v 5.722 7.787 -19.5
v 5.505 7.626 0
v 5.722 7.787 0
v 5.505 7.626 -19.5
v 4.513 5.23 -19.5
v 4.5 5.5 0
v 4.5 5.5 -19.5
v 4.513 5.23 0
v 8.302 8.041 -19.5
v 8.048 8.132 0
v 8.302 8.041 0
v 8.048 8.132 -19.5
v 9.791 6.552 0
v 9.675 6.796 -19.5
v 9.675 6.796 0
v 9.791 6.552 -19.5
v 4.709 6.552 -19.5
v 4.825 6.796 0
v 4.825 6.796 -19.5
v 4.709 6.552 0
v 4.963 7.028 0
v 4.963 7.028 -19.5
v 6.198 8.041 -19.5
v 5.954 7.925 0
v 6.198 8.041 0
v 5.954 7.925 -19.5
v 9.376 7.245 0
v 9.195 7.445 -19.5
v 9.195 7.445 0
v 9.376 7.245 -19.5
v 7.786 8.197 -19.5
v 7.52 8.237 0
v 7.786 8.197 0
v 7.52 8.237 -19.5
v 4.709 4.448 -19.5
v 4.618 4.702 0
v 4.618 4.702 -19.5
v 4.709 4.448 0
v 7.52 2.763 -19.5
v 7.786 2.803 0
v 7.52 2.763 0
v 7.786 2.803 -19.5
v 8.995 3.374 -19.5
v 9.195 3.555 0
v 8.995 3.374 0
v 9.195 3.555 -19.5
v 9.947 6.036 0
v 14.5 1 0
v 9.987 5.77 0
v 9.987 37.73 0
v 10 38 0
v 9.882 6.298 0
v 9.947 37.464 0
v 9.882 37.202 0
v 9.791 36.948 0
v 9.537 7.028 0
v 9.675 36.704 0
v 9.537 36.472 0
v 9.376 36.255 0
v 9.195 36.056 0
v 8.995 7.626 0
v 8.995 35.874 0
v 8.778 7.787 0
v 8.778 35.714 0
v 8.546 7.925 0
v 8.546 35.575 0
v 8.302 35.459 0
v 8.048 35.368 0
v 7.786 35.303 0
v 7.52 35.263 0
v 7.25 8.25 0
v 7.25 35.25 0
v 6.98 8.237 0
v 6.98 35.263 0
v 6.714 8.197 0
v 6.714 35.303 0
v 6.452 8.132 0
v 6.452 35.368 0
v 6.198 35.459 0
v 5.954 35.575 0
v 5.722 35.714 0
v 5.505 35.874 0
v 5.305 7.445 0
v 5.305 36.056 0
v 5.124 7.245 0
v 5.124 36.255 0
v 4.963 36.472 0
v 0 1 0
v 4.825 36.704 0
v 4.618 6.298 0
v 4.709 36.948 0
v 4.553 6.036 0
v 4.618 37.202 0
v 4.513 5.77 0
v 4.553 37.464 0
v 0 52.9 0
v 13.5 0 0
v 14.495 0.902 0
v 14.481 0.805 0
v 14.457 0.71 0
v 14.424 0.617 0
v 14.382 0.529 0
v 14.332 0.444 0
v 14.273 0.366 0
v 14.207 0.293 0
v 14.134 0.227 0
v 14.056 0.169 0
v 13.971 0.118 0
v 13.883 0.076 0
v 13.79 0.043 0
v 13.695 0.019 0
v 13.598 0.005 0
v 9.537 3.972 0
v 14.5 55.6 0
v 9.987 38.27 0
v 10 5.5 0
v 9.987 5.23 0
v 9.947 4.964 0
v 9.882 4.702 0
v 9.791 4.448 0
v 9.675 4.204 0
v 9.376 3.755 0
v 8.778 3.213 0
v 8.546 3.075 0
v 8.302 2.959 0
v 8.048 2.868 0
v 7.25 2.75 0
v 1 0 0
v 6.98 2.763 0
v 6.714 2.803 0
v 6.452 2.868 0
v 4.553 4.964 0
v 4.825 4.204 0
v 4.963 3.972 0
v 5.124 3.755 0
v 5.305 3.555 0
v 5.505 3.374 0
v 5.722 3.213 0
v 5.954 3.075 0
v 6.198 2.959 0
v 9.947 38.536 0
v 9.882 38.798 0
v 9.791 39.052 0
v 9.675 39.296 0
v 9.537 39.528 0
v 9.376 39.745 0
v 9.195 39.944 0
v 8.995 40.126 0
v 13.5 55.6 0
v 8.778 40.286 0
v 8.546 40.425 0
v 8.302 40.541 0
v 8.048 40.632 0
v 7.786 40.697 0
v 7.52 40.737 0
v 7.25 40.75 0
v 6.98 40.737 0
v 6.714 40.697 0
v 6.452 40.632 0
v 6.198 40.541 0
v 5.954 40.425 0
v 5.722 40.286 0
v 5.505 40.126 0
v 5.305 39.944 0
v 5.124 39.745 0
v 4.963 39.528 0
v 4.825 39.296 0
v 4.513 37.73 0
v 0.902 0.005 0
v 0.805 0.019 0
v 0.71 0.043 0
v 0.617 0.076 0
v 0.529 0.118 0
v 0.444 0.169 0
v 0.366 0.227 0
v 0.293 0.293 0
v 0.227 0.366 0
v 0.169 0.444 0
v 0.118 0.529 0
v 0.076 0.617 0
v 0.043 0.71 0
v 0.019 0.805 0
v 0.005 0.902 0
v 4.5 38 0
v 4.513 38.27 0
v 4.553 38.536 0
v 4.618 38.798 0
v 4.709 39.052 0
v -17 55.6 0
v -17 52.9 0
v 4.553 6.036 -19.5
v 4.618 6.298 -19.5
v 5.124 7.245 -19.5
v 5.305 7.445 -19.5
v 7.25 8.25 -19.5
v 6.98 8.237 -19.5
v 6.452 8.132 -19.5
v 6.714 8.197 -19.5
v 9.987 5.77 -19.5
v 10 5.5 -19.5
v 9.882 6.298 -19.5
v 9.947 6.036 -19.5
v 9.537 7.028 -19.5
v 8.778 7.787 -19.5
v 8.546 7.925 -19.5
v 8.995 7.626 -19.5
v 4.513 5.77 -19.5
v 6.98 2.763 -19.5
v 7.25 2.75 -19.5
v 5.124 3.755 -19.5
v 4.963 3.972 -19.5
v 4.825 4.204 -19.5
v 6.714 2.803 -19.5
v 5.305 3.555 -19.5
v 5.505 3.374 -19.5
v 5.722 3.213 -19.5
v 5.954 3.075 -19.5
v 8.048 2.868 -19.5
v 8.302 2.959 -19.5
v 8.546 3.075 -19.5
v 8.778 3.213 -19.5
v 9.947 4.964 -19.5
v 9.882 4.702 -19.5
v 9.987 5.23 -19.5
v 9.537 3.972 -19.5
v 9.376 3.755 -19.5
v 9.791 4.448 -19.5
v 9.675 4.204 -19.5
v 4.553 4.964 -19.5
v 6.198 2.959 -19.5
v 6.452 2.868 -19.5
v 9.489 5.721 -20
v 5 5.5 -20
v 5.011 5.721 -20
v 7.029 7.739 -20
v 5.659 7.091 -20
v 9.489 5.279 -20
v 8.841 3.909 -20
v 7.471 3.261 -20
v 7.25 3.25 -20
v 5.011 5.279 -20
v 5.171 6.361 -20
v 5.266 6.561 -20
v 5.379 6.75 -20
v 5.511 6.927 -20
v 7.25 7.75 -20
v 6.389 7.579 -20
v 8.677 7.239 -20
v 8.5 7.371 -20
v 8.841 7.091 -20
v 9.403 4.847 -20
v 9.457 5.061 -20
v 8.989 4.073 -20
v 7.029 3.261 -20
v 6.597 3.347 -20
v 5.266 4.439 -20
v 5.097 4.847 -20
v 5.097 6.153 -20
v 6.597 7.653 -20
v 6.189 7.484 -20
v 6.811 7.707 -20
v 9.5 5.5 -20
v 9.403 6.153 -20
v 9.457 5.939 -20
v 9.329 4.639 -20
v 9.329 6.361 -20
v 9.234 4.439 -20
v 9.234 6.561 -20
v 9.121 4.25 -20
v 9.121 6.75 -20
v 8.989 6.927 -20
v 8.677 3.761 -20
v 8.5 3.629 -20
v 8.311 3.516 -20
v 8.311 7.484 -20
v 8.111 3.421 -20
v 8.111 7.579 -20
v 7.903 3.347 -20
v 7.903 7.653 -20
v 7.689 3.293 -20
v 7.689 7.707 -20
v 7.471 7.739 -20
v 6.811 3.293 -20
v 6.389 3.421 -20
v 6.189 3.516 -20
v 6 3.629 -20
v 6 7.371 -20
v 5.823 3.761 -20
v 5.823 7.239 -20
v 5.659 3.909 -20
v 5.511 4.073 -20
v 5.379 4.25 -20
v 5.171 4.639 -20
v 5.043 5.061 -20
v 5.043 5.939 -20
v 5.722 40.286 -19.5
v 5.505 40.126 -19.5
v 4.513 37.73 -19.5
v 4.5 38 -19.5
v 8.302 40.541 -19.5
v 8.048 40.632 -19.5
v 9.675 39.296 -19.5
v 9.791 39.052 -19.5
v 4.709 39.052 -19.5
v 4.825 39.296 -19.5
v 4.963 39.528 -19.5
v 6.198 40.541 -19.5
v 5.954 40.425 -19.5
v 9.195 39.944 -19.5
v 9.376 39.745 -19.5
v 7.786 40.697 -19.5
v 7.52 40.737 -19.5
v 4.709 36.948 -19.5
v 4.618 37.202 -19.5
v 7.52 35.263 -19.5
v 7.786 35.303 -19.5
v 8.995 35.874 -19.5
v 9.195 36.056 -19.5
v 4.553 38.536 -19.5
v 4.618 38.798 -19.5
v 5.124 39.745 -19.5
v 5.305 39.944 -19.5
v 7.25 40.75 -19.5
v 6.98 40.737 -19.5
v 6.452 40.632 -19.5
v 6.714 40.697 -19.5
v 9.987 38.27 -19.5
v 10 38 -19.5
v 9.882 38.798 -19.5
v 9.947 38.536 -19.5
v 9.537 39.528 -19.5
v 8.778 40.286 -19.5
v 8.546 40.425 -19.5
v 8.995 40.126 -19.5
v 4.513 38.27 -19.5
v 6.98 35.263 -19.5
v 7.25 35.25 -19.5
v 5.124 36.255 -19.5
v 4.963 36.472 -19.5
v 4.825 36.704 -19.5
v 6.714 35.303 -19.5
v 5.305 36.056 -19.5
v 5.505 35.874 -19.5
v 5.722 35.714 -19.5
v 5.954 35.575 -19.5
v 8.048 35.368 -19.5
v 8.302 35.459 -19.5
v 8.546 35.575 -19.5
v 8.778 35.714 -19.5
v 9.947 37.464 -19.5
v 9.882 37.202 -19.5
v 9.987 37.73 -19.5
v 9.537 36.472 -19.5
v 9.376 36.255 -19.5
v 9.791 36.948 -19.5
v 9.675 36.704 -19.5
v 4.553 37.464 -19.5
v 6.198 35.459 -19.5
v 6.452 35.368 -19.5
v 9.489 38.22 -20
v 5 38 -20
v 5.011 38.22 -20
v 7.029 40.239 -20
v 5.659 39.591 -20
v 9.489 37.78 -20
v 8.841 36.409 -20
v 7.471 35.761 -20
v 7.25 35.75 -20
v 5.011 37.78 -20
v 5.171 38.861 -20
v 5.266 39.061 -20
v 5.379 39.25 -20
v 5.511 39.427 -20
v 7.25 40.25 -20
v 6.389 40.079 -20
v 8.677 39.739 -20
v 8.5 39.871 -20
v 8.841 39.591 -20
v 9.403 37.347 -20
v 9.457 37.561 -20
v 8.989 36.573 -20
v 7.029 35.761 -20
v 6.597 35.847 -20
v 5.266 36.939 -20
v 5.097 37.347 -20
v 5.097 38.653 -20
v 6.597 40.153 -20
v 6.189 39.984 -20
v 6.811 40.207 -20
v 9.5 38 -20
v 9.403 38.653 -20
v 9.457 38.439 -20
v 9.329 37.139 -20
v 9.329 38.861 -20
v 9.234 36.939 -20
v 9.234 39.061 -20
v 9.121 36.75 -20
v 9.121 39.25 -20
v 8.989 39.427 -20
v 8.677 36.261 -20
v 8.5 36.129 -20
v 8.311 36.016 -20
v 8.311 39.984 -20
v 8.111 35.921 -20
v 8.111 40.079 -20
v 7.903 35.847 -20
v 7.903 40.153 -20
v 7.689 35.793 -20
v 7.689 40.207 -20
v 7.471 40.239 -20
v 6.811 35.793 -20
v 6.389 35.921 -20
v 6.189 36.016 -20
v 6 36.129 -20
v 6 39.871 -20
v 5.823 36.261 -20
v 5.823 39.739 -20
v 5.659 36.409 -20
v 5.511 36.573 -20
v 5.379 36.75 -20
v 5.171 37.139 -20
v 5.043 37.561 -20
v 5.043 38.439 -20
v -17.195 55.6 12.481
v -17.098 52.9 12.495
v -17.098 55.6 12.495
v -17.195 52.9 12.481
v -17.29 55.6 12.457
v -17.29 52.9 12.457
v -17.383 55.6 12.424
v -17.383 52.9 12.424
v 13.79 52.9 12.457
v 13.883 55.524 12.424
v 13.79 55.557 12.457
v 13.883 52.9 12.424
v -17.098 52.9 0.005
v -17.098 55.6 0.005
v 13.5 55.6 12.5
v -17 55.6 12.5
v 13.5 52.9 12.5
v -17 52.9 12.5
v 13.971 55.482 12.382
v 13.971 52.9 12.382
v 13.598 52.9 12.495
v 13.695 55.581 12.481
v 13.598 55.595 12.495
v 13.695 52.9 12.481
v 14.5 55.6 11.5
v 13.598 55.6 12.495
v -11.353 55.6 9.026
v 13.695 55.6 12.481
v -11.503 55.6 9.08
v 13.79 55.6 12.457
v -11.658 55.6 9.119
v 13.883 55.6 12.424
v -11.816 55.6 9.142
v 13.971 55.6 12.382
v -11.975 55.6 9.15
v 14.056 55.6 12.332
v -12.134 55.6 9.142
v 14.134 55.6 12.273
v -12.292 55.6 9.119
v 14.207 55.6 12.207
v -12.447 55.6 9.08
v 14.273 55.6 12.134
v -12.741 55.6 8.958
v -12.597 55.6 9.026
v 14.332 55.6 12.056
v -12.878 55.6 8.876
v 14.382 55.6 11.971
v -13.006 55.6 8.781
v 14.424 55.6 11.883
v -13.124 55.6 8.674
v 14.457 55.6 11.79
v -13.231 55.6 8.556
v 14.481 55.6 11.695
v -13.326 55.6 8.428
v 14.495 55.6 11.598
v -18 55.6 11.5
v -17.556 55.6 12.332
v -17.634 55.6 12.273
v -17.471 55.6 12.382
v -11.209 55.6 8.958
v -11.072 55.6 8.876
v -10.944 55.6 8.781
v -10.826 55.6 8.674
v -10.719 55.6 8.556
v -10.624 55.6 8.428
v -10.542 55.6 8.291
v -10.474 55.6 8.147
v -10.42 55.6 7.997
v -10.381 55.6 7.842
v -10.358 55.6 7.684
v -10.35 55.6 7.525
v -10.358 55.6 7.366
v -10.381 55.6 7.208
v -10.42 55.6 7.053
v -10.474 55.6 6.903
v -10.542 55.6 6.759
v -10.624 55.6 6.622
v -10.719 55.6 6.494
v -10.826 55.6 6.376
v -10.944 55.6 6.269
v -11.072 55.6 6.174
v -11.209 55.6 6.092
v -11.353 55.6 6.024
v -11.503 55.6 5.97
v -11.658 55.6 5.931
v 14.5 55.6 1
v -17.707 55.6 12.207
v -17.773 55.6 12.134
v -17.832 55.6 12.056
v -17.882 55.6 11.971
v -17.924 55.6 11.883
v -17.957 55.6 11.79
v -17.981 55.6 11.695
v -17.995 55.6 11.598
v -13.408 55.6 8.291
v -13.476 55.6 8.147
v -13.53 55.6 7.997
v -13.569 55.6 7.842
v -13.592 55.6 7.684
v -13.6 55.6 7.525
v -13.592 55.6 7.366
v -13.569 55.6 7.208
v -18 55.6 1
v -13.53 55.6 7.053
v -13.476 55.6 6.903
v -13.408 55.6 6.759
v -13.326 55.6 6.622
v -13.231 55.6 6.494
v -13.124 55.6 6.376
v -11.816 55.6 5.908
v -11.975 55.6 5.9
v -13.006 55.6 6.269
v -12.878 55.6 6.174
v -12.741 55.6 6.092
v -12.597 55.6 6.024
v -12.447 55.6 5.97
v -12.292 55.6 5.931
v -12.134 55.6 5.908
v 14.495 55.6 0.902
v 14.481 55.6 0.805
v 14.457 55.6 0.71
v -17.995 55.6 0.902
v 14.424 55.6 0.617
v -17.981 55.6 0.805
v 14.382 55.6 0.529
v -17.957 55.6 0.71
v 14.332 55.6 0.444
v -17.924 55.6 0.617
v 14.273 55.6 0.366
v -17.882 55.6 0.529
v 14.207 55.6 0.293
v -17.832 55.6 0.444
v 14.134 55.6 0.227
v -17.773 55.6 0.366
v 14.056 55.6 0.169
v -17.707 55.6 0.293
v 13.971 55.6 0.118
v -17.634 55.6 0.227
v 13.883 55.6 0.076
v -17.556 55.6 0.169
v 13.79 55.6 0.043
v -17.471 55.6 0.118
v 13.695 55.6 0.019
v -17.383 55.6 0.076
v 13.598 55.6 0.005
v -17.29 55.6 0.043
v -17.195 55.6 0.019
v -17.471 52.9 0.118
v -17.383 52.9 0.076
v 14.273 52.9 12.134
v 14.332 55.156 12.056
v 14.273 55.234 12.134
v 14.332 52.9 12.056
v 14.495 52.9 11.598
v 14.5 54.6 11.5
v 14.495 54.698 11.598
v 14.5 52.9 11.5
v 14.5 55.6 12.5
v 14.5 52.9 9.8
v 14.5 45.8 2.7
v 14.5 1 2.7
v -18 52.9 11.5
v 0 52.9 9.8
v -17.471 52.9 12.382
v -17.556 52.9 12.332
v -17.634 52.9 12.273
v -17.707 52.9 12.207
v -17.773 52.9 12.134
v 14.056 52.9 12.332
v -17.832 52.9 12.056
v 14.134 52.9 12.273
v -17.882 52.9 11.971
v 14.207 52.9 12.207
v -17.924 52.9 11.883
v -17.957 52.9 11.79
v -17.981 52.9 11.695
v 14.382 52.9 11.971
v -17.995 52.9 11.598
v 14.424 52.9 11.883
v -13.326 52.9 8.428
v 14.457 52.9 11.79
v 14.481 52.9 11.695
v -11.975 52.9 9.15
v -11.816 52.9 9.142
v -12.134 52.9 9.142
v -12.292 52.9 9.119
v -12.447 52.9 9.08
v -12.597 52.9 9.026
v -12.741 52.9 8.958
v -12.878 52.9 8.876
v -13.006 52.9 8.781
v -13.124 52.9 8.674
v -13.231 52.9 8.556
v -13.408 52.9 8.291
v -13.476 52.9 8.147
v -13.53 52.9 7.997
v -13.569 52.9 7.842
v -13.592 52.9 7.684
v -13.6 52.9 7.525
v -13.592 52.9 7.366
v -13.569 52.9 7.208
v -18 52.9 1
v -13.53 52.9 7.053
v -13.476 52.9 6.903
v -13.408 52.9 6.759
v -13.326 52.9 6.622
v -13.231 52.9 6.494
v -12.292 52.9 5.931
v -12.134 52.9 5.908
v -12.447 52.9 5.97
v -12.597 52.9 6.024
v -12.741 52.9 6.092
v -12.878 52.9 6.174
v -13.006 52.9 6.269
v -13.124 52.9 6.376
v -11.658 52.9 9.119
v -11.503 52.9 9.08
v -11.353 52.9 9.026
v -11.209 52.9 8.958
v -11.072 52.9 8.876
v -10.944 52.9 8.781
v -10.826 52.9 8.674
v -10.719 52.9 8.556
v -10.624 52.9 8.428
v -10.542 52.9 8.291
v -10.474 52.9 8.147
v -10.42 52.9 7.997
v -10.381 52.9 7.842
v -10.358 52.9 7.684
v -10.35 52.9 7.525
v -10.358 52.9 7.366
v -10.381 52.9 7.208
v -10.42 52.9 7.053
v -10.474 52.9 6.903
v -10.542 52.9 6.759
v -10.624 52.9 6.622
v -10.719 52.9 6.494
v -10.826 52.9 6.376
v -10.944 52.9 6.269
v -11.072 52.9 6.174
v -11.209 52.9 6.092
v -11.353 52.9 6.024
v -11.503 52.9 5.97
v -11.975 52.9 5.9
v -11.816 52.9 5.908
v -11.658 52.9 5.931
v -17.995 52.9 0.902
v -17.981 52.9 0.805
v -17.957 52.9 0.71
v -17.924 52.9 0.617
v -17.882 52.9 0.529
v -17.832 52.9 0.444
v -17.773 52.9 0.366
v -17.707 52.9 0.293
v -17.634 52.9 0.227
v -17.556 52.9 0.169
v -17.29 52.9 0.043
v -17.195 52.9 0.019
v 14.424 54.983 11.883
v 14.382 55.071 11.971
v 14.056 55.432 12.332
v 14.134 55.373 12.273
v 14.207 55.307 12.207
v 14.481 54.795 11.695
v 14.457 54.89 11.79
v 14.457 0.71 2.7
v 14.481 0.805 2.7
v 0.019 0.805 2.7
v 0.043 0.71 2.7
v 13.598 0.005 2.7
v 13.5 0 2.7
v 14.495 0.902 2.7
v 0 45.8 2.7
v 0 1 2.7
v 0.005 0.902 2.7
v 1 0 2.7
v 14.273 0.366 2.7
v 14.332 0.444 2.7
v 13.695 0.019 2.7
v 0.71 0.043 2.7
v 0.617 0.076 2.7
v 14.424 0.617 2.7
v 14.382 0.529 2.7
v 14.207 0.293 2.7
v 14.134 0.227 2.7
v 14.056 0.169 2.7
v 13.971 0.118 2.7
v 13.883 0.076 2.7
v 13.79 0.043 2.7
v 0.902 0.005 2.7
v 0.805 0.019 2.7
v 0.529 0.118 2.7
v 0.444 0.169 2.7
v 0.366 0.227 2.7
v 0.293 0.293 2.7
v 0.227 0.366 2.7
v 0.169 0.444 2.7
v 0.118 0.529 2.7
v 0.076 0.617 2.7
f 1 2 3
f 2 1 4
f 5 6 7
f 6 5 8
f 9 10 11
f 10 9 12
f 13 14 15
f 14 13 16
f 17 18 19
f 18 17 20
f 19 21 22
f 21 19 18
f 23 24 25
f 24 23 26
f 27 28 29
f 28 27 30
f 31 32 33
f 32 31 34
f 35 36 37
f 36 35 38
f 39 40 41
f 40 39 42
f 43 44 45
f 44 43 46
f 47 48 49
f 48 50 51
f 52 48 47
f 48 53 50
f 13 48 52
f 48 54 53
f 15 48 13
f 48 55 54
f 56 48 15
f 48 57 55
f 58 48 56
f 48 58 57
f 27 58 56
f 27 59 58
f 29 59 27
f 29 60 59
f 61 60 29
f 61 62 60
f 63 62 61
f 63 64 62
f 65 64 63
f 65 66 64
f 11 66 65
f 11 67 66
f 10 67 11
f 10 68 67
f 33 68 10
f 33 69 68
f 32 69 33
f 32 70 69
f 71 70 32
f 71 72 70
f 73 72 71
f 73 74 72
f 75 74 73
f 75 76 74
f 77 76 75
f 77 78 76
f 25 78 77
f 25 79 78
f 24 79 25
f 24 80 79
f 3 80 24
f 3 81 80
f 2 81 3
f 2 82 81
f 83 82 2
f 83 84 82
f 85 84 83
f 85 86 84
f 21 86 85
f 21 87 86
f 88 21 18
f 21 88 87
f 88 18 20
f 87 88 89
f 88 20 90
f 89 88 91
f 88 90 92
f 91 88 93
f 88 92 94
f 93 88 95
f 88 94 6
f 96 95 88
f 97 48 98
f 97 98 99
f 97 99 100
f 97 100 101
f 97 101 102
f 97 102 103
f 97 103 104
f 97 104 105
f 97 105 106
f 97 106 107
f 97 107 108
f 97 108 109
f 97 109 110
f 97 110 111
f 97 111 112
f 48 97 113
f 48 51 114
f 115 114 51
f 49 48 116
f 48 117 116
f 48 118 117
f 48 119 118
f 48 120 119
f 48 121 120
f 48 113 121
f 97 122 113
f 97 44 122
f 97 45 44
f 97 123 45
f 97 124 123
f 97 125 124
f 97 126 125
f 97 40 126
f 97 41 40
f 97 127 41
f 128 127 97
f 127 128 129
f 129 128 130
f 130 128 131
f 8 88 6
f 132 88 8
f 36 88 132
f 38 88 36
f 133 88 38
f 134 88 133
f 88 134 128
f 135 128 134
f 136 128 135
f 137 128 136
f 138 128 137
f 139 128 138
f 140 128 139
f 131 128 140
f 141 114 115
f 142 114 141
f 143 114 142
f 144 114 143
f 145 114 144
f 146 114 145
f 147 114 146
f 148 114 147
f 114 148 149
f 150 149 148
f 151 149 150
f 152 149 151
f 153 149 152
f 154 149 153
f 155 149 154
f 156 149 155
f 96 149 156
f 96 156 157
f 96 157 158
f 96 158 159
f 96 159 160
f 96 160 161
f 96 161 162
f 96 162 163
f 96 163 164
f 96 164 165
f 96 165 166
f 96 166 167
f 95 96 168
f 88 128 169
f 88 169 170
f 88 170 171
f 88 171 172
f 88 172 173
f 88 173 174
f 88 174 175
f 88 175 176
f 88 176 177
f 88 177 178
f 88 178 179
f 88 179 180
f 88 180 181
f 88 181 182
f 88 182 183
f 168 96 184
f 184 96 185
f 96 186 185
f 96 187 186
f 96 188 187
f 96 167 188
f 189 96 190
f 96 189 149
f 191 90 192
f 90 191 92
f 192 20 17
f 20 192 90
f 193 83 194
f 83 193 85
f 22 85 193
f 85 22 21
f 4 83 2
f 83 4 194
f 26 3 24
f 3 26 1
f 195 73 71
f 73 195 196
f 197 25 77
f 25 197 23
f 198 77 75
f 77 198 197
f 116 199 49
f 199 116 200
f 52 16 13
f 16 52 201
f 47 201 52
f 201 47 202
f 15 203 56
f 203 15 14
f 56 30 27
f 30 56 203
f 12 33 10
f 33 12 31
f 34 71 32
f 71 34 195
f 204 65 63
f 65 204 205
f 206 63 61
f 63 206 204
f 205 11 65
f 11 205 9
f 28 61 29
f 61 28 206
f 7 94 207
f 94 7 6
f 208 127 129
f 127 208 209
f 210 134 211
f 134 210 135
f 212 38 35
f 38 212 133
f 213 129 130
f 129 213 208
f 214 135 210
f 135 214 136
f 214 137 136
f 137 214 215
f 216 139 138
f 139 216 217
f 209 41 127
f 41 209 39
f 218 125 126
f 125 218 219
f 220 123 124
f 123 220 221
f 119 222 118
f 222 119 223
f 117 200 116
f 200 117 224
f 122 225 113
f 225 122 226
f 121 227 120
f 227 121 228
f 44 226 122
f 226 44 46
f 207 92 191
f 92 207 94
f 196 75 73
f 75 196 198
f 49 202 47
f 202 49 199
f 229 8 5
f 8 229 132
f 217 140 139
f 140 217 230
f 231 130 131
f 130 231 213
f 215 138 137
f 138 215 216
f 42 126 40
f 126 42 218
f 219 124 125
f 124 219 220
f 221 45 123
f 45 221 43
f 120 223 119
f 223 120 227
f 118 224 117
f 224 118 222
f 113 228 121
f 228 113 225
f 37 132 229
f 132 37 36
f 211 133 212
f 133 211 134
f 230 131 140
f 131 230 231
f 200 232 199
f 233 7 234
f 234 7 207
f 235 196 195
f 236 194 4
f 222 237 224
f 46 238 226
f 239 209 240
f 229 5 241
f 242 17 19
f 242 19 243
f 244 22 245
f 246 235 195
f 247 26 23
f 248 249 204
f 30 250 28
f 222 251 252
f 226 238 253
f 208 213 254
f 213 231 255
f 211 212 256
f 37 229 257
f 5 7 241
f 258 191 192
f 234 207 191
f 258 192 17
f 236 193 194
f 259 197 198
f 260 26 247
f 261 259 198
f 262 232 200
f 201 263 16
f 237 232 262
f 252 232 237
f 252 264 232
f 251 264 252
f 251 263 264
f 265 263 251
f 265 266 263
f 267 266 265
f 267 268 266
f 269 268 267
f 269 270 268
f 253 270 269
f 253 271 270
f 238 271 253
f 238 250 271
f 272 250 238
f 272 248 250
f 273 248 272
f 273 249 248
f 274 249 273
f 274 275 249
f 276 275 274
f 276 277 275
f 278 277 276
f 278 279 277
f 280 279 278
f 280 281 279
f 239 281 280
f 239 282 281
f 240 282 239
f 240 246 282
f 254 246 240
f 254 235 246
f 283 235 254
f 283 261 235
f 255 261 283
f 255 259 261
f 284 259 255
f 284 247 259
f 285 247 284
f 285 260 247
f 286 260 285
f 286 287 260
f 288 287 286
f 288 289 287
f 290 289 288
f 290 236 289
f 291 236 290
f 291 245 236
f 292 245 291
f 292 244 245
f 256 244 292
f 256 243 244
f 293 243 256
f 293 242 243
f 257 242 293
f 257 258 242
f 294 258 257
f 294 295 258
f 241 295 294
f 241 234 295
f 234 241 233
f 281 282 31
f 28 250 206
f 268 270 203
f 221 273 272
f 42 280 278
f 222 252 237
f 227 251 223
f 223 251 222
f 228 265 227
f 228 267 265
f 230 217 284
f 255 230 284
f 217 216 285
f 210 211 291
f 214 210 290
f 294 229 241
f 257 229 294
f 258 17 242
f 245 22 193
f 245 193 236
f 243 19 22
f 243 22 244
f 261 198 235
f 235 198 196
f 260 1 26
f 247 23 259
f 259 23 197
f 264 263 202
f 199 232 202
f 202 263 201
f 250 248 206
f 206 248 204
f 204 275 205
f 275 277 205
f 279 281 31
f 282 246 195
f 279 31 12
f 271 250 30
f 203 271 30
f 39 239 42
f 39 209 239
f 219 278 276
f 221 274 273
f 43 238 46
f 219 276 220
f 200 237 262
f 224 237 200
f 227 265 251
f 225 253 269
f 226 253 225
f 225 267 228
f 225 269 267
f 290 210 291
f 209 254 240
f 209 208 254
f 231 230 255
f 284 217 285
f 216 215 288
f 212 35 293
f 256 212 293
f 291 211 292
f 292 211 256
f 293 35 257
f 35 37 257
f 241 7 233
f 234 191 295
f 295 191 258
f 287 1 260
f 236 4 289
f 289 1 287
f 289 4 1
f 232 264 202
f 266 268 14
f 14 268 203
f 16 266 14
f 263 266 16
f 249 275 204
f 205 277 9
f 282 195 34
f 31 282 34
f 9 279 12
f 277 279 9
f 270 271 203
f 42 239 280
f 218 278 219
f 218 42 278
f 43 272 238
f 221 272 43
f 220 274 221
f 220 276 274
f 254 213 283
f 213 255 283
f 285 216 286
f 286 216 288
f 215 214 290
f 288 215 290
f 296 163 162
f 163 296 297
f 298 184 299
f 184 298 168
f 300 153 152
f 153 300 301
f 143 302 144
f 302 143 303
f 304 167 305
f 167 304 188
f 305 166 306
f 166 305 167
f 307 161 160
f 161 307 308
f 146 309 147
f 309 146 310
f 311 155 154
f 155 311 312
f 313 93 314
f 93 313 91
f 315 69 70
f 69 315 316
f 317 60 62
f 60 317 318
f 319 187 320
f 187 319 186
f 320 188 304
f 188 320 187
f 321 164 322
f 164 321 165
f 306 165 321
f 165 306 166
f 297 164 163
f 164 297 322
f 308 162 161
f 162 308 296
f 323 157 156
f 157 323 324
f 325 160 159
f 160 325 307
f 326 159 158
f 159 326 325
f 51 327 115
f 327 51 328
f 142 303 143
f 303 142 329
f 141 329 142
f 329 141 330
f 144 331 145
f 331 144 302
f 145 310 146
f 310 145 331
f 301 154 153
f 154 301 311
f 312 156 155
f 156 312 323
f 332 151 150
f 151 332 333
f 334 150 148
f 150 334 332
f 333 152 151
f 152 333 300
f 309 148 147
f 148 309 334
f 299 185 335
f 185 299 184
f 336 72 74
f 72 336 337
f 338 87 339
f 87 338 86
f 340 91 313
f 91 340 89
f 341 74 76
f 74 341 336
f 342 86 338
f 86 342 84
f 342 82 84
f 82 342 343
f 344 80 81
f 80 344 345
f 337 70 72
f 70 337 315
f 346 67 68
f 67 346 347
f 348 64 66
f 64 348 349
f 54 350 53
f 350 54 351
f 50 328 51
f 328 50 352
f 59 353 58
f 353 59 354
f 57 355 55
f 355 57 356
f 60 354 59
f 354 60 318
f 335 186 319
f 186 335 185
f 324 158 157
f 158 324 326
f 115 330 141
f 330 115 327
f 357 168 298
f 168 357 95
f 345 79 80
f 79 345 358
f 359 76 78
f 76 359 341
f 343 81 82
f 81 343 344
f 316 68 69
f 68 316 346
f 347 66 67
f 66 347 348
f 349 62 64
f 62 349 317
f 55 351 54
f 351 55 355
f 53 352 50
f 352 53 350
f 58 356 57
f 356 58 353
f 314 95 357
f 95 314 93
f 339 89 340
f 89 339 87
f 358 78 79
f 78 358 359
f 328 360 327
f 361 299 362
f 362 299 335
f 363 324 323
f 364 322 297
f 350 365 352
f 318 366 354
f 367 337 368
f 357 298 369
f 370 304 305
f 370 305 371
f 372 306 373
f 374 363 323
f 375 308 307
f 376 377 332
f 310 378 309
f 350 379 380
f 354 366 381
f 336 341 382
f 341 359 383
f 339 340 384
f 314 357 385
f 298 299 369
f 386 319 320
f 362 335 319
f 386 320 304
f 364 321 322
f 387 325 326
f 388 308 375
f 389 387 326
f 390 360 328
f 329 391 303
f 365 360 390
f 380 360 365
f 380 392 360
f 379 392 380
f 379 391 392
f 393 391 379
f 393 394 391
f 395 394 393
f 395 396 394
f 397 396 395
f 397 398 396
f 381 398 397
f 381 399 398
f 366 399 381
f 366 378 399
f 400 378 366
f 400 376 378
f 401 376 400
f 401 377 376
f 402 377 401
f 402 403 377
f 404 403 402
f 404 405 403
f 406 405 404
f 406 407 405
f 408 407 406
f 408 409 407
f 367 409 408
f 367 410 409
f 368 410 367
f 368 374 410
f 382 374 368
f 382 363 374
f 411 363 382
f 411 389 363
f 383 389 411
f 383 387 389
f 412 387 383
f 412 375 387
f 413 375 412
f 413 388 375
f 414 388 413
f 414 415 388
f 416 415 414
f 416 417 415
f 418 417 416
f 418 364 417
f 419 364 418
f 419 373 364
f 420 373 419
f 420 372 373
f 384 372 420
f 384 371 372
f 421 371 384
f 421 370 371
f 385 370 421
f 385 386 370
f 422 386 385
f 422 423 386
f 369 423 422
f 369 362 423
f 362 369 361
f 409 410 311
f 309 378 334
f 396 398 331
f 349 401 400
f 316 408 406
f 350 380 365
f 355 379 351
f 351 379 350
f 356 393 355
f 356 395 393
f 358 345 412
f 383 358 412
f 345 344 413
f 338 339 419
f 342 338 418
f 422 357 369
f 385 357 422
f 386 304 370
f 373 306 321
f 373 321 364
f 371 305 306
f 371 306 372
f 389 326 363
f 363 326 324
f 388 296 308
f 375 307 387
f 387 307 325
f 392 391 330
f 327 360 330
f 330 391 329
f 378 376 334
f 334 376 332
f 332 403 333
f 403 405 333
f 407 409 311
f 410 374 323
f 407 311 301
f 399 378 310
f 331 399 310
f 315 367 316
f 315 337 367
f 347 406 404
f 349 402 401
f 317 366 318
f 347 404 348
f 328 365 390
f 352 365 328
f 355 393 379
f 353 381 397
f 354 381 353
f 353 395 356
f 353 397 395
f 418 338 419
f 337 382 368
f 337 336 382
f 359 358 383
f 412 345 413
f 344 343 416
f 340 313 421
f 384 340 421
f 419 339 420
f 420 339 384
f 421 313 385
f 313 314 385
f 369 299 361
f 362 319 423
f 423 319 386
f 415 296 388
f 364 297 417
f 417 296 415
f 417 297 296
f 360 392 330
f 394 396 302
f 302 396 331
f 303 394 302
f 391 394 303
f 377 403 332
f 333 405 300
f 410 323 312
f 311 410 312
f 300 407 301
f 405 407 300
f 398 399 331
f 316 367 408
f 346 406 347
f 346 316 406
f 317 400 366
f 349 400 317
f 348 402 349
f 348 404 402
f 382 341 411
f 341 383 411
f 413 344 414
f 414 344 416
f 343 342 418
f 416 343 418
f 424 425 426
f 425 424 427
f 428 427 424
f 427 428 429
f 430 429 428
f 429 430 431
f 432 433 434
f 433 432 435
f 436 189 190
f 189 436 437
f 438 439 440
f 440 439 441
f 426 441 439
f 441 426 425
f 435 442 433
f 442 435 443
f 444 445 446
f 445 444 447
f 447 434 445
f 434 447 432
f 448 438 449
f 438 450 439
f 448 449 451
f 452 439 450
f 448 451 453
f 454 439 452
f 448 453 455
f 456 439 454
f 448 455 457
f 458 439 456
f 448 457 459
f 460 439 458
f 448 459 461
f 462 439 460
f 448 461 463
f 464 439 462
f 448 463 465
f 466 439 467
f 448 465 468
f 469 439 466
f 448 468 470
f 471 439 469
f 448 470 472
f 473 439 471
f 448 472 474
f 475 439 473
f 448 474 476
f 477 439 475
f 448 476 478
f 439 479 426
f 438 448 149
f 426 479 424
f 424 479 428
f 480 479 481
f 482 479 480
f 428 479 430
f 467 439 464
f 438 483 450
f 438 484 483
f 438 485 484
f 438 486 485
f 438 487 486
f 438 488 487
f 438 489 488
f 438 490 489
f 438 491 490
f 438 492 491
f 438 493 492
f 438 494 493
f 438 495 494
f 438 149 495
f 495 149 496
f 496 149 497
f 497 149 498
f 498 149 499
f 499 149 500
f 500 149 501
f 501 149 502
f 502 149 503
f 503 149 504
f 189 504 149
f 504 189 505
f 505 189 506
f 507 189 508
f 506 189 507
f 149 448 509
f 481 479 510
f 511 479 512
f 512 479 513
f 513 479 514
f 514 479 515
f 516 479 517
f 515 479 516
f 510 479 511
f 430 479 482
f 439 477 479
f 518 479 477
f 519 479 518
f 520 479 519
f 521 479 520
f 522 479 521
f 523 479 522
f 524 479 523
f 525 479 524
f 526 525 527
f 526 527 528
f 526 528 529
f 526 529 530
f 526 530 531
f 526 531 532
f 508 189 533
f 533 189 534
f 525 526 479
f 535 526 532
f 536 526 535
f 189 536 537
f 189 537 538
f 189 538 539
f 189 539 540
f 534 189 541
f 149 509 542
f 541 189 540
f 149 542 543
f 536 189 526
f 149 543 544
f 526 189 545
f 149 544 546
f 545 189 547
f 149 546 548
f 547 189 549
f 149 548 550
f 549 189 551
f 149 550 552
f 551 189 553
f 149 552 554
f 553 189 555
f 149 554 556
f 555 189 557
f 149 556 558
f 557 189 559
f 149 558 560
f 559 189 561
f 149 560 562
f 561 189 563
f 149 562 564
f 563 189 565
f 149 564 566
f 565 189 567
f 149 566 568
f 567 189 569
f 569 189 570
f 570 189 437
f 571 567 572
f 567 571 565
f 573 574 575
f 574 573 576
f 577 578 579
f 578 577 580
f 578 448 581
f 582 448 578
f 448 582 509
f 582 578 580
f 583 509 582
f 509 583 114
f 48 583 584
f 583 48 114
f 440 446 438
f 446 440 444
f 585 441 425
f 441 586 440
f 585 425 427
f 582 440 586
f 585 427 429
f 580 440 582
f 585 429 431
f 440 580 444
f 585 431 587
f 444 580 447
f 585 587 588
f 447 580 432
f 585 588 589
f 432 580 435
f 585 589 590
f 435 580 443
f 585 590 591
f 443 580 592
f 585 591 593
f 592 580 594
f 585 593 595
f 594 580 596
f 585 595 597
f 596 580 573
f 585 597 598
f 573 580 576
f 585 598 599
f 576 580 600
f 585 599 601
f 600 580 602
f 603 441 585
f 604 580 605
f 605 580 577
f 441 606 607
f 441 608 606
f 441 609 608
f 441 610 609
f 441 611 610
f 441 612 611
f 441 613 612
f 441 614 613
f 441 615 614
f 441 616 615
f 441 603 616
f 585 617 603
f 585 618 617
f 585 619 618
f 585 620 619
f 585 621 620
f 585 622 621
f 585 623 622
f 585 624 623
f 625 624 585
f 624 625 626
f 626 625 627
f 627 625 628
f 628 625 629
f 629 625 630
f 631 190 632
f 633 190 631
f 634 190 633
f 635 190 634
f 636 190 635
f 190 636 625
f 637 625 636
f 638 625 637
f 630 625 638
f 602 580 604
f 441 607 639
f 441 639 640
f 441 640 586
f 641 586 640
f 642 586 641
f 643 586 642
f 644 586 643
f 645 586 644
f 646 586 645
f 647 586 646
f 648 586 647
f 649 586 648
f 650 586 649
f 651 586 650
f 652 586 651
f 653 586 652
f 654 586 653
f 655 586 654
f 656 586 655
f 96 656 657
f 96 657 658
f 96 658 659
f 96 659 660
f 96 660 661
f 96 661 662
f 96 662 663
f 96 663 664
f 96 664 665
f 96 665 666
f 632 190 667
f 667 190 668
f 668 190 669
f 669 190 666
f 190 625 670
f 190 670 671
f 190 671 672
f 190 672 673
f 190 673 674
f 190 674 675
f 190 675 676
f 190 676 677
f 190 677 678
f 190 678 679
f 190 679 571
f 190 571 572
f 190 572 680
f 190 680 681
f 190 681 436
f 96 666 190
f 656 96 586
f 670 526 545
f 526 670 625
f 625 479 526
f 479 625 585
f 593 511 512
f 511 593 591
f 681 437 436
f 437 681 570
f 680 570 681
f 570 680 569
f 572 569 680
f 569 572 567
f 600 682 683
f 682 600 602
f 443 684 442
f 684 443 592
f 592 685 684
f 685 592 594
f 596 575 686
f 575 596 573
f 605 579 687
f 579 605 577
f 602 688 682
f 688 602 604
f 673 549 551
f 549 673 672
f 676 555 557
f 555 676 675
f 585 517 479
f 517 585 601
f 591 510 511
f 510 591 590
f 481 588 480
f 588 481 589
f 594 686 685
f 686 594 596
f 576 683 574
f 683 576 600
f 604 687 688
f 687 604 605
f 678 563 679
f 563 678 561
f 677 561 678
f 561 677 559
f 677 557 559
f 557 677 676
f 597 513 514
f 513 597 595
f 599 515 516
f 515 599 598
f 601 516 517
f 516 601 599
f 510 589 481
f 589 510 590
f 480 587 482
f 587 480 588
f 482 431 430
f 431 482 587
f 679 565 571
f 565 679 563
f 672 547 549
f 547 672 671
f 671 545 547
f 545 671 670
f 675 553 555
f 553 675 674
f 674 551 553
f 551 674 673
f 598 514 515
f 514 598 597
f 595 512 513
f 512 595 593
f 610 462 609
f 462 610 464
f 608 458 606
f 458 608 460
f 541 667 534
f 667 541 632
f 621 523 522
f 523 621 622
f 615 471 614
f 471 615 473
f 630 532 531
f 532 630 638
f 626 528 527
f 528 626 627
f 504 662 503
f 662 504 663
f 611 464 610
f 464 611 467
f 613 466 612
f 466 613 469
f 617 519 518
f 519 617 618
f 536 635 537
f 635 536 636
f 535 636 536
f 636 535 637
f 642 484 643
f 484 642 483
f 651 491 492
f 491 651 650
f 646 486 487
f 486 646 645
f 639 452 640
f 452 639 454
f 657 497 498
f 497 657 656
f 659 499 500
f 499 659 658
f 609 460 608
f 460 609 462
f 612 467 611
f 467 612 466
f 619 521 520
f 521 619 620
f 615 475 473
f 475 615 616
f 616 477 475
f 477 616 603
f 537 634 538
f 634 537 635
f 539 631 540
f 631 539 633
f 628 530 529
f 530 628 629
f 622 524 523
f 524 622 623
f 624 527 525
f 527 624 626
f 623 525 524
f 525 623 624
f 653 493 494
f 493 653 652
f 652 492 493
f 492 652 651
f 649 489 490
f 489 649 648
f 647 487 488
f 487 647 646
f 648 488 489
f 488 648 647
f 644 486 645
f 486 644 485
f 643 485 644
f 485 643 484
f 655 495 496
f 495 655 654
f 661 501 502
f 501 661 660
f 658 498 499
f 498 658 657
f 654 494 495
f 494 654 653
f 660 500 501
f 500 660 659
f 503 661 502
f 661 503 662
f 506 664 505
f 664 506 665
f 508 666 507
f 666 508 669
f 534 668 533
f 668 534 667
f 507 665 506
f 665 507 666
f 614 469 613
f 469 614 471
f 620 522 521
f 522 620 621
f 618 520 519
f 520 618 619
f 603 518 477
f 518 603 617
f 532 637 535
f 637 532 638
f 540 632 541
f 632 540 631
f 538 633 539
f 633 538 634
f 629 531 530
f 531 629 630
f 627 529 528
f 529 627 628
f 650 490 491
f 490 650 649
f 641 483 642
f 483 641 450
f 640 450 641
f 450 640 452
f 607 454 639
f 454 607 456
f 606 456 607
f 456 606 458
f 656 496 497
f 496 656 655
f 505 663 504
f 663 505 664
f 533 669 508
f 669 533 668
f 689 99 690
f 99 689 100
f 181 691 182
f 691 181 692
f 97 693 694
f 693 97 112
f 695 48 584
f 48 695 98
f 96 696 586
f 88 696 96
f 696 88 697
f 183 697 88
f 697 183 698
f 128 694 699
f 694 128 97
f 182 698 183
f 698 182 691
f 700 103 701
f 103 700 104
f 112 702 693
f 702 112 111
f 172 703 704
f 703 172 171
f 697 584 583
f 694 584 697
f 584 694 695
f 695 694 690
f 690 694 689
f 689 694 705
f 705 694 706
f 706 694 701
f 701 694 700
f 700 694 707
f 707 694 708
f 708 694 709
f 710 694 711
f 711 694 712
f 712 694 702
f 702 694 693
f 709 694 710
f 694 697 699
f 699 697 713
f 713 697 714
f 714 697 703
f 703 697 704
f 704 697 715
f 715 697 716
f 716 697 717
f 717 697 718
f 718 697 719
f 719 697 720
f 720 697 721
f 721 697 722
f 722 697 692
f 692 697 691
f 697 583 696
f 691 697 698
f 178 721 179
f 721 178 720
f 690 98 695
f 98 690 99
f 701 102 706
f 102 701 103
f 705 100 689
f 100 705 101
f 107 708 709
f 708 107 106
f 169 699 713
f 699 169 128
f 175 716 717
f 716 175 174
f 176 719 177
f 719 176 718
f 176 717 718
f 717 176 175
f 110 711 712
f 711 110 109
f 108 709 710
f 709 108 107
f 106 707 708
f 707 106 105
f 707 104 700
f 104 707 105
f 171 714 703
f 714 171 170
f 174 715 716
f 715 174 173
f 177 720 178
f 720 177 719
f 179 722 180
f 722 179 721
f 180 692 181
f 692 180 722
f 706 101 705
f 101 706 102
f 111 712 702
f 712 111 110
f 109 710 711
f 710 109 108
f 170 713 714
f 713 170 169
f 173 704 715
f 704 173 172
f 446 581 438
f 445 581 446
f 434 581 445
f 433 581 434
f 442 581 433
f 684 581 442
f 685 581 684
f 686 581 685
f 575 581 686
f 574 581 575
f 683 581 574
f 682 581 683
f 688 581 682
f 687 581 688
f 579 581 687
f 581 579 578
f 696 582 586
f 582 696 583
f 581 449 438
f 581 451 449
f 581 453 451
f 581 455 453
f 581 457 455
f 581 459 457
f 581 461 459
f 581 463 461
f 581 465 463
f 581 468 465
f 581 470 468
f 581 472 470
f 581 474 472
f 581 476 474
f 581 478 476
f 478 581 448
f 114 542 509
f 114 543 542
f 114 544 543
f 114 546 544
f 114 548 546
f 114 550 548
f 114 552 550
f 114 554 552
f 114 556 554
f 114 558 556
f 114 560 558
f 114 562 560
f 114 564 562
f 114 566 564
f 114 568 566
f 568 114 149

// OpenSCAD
pegDiameter = 5.5;
pegDistance = 27 + pegDiameter;
plateWidth = 14.5;
plateThickness = 2.7;
plateRadius = 1;
pegLength = 20;

plateLength = (1.5 * pegDistance) + (pegDiameter) + (plateThickness/2);

tabLength = 32.5;
tabWidth = 12.5;
screwHoleDiameter = 3.25;
screwLengthInset = 24.85 + screwHoleDiameter/2;
screwWidthInset = 5.9 + screwHoleDiameter/2;

$fn=64;

module roundedRect(width, height, thickness, radius) {
    translate([radius, radius, 0])
        linear_extrude(thickness) minkowski() {
            circle(radius);
            square([width - 2*radius, height - 2*radius]);
        }
}

module peg(bevel=0.5) {
    cylinder(d=pegDiameter, h=pegLength-bevel);
    translate([0, 0, pegLength-bevel])
        cylinder(d1=pegDiameter, d2=pegDiameter-2*bevel, h=bevel);
}

module plate() {
    roundedRect(plateWidth, plateLength, plateThickness, plateRadius);
    translate([plateWidth/2, pegDiameter, 0])
        rotate([0, 180, 0])
            peg();
    translate([plateWidth/2, pegDiameter + pegDistance, 0])
        rotate([0, 180, 0])
            peg();
    translate([plateWidth, plateLength, 0])
        rotate([90, -90, 0])
            difference() {
                roundedRect(tabWidth, tabLength, plateThickness, plateRadius);
                translate([screwWidthInset, screwLengthInset, -1])
                    cylinder(d=screwHoleDiameter, h = 10);
            };
    rotate([0, 90, 0])
        linear_extrude(plateWidth)
            polygon(points = [
                [0, plateLength],
                [0, plateLength-tabWidth],
                [-tabWidth, plateLength]
            ]);
}

plate();
